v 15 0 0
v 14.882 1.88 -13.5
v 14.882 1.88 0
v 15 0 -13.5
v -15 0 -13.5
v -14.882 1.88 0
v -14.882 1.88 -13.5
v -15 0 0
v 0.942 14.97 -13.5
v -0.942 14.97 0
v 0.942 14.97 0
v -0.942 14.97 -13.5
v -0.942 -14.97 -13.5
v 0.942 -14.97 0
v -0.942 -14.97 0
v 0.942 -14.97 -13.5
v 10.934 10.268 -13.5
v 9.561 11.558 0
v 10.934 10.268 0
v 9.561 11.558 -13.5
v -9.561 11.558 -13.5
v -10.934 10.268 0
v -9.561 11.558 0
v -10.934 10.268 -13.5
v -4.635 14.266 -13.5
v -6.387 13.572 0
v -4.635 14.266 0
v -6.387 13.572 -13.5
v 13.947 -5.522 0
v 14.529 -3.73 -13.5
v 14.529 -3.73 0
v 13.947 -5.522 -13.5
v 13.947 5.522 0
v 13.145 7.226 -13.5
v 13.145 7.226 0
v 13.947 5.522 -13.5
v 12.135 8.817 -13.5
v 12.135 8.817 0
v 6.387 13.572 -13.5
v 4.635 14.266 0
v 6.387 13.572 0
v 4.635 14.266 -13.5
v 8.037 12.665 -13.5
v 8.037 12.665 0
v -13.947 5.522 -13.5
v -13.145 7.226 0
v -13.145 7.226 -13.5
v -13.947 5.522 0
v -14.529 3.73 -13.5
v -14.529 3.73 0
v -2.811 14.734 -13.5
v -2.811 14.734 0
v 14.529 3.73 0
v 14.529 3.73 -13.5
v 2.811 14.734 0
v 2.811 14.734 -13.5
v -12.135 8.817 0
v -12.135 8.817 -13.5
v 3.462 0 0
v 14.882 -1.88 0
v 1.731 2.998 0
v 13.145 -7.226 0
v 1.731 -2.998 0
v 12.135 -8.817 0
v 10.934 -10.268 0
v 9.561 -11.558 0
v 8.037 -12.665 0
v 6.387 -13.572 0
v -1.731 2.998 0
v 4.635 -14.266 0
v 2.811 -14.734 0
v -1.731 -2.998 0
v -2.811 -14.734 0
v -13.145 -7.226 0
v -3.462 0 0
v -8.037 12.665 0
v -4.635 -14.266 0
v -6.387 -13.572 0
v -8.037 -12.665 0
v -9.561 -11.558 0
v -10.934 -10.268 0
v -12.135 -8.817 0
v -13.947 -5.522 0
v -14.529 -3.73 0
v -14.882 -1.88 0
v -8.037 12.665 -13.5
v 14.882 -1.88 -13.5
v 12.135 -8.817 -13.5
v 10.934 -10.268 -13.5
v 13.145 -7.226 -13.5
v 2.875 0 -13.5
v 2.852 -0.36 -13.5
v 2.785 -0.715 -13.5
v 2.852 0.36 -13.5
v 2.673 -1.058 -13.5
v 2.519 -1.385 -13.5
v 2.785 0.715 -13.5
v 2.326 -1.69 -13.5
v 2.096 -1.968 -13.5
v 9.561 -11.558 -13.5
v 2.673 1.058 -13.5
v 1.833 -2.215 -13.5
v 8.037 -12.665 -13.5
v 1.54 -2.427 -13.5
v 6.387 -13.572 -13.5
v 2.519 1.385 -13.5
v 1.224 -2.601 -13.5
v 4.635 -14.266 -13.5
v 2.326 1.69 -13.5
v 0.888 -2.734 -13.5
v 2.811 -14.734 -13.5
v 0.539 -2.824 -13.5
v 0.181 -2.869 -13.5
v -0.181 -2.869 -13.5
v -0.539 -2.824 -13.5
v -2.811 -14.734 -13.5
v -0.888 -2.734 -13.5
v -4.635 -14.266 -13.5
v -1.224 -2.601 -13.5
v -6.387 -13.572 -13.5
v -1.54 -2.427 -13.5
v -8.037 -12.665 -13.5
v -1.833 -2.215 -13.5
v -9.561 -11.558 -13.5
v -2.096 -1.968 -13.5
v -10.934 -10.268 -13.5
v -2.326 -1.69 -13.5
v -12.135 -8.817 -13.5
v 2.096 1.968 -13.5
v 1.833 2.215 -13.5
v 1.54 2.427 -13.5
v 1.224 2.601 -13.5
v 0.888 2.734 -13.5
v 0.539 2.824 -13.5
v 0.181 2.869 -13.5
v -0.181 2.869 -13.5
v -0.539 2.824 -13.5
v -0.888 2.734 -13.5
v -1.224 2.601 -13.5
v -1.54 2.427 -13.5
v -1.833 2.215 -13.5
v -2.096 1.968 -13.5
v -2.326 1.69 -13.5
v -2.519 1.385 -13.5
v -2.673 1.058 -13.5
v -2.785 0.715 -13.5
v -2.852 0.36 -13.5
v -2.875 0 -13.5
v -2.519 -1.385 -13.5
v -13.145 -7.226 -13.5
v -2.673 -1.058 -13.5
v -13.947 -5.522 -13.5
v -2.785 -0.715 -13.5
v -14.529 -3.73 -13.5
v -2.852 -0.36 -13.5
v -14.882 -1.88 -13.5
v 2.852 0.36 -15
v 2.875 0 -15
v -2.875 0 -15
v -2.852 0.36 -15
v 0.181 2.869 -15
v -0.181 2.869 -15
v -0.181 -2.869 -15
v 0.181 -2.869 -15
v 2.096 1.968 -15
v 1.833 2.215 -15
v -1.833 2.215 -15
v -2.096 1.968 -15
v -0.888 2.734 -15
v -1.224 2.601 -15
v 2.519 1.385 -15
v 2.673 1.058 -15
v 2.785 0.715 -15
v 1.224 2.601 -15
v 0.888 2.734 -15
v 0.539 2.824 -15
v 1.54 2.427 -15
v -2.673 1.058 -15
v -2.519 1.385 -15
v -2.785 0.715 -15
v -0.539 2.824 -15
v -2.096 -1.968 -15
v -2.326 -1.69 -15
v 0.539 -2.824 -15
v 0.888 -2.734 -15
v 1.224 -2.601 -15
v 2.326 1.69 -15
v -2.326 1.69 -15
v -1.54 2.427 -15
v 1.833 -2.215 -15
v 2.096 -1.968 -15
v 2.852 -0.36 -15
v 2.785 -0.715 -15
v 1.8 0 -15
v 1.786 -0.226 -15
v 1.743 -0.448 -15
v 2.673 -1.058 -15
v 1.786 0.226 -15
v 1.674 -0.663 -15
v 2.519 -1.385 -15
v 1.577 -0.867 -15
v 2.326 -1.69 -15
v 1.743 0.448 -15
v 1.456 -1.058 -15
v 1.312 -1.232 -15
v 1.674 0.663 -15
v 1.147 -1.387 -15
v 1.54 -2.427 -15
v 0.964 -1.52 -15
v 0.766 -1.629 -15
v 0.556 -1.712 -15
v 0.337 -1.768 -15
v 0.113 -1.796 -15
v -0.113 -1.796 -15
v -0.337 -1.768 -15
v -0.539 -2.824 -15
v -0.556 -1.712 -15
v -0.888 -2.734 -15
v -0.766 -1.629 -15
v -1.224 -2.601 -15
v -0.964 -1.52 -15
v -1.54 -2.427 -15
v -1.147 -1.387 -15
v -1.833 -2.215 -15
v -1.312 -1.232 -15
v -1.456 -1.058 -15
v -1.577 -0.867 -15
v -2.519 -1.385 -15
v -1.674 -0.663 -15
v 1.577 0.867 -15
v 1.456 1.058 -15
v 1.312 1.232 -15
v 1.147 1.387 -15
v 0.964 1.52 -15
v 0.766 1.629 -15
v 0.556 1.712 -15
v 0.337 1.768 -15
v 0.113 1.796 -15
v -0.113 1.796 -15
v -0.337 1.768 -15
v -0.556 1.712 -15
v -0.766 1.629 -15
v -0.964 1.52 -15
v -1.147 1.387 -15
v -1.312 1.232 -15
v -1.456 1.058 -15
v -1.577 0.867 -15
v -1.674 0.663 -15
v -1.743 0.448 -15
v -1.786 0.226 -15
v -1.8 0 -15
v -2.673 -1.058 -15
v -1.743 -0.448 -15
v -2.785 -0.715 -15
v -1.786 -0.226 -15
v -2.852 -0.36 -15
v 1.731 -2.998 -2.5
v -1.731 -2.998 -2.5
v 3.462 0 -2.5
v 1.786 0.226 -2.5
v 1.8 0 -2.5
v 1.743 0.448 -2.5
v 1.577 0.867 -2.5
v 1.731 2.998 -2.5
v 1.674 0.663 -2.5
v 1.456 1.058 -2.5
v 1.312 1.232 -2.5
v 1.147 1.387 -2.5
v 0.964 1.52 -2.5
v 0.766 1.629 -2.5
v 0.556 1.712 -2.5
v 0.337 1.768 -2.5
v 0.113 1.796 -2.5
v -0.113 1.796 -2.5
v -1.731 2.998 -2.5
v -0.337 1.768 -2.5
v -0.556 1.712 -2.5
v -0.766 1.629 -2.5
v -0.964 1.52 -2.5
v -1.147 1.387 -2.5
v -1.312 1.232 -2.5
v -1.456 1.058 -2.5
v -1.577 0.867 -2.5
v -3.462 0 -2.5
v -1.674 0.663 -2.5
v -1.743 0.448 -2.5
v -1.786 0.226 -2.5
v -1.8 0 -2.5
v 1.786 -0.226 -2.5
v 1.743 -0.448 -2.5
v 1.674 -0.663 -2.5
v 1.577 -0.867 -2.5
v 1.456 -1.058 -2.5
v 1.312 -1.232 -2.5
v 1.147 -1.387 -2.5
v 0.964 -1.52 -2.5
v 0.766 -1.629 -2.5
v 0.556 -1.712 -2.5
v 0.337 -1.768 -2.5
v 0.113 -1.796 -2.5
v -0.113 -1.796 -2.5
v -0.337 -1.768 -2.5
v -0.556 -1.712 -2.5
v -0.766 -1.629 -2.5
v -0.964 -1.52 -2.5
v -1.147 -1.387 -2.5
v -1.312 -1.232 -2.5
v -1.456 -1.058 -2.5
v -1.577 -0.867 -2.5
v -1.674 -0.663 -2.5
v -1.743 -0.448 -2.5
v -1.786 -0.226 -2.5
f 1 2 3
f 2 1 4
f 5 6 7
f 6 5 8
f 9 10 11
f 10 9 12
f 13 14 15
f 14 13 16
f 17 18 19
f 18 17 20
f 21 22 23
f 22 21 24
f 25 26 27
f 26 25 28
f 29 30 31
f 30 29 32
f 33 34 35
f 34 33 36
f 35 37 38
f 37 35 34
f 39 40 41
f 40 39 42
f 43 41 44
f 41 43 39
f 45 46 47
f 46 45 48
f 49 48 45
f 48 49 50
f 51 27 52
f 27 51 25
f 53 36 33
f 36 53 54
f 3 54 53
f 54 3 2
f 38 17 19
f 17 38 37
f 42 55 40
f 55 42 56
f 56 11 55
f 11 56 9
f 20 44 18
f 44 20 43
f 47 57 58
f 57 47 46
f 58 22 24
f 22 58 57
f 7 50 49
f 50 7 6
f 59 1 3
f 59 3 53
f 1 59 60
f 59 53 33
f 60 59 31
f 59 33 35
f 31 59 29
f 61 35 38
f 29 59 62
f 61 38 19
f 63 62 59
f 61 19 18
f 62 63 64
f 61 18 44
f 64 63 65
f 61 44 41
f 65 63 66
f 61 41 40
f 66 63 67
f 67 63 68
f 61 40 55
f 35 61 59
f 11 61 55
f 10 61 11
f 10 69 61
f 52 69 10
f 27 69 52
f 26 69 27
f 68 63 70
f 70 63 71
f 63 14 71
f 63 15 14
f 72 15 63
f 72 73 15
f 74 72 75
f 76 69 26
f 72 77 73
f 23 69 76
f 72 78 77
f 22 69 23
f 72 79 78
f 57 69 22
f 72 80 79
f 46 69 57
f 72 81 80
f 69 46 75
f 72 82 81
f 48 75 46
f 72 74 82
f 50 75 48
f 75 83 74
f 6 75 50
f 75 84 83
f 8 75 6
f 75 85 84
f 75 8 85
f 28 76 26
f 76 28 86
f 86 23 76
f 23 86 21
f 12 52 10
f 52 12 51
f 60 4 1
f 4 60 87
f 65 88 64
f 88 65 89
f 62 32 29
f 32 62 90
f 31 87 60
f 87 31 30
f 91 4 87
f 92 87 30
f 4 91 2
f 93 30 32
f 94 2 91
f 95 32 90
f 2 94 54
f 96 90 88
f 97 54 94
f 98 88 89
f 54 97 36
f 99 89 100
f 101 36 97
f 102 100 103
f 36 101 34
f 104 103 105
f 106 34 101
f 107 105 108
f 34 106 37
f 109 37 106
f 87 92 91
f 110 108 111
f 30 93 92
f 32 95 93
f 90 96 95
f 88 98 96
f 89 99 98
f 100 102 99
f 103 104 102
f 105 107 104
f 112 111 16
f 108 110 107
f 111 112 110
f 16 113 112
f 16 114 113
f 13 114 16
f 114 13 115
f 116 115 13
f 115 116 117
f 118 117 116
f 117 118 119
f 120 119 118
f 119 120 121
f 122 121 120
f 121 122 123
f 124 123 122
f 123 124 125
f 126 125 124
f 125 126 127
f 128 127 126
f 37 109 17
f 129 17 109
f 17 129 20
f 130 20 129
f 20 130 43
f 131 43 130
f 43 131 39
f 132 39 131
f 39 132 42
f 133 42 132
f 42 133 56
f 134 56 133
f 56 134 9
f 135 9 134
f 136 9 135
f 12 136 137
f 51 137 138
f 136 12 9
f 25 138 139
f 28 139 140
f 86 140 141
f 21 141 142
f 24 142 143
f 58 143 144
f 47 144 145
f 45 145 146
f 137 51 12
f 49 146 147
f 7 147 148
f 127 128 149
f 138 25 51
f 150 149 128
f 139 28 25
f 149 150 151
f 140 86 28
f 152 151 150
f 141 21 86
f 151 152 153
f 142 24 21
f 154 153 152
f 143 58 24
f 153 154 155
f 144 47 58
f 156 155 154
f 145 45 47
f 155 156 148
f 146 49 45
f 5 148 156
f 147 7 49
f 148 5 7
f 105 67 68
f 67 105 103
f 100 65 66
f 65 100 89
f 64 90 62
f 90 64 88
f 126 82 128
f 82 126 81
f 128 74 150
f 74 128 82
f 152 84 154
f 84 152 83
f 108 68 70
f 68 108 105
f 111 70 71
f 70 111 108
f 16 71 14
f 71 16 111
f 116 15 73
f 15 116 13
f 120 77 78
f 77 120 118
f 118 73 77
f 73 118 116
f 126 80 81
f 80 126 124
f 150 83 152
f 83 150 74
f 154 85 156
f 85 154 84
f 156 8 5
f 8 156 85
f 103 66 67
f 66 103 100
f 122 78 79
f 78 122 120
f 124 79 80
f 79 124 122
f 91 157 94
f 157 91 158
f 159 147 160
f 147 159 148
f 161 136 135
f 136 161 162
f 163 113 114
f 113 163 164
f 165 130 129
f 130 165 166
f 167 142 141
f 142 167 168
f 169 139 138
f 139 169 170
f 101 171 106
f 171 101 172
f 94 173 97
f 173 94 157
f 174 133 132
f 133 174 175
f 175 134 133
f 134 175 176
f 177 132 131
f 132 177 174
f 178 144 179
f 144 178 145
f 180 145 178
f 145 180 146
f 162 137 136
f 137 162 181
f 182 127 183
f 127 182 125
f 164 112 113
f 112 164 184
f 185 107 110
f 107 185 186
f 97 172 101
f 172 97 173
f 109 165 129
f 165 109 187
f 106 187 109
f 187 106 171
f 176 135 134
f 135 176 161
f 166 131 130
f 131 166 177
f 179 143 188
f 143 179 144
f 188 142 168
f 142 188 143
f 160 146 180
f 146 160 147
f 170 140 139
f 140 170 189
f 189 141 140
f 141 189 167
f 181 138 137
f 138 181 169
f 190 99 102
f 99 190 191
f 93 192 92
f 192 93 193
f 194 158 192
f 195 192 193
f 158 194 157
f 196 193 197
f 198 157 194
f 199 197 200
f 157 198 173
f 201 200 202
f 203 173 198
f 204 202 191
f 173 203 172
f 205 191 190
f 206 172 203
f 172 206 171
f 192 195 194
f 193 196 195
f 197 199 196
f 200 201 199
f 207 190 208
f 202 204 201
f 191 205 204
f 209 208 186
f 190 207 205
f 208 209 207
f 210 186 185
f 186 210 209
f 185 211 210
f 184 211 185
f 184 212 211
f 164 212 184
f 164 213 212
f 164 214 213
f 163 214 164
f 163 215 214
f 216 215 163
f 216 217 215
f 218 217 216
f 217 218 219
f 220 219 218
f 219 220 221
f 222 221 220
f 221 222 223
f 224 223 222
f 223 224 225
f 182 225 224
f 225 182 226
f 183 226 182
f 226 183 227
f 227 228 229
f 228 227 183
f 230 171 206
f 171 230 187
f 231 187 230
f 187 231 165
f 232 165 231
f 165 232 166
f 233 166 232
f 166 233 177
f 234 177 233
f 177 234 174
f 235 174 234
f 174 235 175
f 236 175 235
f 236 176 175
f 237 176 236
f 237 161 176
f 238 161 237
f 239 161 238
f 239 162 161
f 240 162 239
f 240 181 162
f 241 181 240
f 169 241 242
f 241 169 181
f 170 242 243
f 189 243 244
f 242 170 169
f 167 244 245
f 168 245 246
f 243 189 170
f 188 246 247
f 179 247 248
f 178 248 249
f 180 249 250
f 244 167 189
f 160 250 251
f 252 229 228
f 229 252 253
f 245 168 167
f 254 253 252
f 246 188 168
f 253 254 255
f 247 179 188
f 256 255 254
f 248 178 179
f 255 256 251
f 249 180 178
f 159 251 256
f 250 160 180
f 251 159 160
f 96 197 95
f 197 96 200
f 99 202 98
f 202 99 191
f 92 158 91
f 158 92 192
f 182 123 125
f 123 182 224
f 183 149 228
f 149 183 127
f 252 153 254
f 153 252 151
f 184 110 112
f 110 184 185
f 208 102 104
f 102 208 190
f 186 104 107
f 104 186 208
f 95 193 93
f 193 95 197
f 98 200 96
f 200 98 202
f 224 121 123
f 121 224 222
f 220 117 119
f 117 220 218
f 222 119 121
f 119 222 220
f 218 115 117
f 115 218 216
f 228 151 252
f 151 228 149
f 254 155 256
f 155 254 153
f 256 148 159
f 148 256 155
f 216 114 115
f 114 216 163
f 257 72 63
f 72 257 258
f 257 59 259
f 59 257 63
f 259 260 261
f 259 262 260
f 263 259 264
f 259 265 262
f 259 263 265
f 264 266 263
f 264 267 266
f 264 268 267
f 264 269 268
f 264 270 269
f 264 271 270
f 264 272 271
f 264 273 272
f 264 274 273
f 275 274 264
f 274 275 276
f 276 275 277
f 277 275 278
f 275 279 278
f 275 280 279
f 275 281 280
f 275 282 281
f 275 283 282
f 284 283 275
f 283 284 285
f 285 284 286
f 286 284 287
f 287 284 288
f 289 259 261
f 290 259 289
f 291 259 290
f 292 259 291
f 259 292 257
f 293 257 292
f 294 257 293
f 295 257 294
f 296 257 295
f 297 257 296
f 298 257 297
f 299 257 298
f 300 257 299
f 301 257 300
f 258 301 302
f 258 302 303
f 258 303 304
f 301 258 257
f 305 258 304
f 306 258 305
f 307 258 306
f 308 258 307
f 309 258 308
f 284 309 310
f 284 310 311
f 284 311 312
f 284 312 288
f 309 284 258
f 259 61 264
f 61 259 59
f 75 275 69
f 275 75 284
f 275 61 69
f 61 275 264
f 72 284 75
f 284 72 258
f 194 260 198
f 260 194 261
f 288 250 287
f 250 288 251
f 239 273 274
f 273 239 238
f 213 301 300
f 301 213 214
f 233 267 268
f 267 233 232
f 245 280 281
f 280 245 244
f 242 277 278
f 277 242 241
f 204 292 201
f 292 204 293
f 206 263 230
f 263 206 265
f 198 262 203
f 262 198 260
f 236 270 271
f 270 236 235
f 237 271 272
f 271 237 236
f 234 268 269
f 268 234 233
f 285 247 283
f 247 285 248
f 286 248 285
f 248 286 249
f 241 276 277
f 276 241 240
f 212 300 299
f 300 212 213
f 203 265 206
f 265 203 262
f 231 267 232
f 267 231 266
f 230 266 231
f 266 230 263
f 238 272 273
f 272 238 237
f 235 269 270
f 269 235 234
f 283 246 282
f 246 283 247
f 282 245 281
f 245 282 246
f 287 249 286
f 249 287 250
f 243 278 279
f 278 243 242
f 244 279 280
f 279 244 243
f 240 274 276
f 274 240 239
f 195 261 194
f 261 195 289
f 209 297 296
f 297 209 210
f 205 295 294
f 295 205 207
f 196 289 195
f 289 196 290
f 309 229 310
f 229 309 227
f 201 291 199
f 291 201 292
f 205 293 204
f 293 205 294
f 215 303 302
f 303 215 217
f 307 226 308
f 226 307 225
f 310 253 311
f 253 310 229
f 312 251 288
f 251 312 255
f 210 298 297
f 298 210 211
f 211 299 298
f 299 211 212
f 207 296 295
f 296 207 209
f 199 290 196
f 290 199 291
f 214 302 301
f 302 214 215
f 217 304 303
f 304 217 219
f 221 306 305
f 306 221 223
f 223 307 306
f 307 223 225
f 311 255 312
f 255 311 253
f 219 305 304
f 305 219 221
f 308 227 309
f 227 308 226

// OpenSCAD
$fn = 50;


difference() {
	union() {
		translate(v = [0, 0, -13.5000000000]) {
			cylinder(h = 13.5000000000, r = 15.0000000000);
		}
		translate(v = [0, 0, -15.0000000000]) {
			cylinder(h = 15, r = 2.8750000000);
		}
	}
	union() {
		translate(v = [0, 0, 0]) {
			rotate(a = [0, 0, 0]) {
				difference() {
					union() {
						translate(v = [0, 0, -2.5000000000]) {
							linear_extrude(height = 2.5000000000) {
								polygon(points = [[3.4620000000, 0.0000000000], [1.7310000000, 2.9981799479], [-1.7310000000, 2.9981799479], [-3.4620000000, 0.0000000000], [-1.7310000000, -2.9981799479], [1.7310000000, -2.9981799479]]);
							}
						}
					}
					union();
				}
			}
		}
		#translate(v = [0, 0, -100.0000000000]) {
			cylinder(h = 200, r = 1.8000000000);
		}
	}
}
